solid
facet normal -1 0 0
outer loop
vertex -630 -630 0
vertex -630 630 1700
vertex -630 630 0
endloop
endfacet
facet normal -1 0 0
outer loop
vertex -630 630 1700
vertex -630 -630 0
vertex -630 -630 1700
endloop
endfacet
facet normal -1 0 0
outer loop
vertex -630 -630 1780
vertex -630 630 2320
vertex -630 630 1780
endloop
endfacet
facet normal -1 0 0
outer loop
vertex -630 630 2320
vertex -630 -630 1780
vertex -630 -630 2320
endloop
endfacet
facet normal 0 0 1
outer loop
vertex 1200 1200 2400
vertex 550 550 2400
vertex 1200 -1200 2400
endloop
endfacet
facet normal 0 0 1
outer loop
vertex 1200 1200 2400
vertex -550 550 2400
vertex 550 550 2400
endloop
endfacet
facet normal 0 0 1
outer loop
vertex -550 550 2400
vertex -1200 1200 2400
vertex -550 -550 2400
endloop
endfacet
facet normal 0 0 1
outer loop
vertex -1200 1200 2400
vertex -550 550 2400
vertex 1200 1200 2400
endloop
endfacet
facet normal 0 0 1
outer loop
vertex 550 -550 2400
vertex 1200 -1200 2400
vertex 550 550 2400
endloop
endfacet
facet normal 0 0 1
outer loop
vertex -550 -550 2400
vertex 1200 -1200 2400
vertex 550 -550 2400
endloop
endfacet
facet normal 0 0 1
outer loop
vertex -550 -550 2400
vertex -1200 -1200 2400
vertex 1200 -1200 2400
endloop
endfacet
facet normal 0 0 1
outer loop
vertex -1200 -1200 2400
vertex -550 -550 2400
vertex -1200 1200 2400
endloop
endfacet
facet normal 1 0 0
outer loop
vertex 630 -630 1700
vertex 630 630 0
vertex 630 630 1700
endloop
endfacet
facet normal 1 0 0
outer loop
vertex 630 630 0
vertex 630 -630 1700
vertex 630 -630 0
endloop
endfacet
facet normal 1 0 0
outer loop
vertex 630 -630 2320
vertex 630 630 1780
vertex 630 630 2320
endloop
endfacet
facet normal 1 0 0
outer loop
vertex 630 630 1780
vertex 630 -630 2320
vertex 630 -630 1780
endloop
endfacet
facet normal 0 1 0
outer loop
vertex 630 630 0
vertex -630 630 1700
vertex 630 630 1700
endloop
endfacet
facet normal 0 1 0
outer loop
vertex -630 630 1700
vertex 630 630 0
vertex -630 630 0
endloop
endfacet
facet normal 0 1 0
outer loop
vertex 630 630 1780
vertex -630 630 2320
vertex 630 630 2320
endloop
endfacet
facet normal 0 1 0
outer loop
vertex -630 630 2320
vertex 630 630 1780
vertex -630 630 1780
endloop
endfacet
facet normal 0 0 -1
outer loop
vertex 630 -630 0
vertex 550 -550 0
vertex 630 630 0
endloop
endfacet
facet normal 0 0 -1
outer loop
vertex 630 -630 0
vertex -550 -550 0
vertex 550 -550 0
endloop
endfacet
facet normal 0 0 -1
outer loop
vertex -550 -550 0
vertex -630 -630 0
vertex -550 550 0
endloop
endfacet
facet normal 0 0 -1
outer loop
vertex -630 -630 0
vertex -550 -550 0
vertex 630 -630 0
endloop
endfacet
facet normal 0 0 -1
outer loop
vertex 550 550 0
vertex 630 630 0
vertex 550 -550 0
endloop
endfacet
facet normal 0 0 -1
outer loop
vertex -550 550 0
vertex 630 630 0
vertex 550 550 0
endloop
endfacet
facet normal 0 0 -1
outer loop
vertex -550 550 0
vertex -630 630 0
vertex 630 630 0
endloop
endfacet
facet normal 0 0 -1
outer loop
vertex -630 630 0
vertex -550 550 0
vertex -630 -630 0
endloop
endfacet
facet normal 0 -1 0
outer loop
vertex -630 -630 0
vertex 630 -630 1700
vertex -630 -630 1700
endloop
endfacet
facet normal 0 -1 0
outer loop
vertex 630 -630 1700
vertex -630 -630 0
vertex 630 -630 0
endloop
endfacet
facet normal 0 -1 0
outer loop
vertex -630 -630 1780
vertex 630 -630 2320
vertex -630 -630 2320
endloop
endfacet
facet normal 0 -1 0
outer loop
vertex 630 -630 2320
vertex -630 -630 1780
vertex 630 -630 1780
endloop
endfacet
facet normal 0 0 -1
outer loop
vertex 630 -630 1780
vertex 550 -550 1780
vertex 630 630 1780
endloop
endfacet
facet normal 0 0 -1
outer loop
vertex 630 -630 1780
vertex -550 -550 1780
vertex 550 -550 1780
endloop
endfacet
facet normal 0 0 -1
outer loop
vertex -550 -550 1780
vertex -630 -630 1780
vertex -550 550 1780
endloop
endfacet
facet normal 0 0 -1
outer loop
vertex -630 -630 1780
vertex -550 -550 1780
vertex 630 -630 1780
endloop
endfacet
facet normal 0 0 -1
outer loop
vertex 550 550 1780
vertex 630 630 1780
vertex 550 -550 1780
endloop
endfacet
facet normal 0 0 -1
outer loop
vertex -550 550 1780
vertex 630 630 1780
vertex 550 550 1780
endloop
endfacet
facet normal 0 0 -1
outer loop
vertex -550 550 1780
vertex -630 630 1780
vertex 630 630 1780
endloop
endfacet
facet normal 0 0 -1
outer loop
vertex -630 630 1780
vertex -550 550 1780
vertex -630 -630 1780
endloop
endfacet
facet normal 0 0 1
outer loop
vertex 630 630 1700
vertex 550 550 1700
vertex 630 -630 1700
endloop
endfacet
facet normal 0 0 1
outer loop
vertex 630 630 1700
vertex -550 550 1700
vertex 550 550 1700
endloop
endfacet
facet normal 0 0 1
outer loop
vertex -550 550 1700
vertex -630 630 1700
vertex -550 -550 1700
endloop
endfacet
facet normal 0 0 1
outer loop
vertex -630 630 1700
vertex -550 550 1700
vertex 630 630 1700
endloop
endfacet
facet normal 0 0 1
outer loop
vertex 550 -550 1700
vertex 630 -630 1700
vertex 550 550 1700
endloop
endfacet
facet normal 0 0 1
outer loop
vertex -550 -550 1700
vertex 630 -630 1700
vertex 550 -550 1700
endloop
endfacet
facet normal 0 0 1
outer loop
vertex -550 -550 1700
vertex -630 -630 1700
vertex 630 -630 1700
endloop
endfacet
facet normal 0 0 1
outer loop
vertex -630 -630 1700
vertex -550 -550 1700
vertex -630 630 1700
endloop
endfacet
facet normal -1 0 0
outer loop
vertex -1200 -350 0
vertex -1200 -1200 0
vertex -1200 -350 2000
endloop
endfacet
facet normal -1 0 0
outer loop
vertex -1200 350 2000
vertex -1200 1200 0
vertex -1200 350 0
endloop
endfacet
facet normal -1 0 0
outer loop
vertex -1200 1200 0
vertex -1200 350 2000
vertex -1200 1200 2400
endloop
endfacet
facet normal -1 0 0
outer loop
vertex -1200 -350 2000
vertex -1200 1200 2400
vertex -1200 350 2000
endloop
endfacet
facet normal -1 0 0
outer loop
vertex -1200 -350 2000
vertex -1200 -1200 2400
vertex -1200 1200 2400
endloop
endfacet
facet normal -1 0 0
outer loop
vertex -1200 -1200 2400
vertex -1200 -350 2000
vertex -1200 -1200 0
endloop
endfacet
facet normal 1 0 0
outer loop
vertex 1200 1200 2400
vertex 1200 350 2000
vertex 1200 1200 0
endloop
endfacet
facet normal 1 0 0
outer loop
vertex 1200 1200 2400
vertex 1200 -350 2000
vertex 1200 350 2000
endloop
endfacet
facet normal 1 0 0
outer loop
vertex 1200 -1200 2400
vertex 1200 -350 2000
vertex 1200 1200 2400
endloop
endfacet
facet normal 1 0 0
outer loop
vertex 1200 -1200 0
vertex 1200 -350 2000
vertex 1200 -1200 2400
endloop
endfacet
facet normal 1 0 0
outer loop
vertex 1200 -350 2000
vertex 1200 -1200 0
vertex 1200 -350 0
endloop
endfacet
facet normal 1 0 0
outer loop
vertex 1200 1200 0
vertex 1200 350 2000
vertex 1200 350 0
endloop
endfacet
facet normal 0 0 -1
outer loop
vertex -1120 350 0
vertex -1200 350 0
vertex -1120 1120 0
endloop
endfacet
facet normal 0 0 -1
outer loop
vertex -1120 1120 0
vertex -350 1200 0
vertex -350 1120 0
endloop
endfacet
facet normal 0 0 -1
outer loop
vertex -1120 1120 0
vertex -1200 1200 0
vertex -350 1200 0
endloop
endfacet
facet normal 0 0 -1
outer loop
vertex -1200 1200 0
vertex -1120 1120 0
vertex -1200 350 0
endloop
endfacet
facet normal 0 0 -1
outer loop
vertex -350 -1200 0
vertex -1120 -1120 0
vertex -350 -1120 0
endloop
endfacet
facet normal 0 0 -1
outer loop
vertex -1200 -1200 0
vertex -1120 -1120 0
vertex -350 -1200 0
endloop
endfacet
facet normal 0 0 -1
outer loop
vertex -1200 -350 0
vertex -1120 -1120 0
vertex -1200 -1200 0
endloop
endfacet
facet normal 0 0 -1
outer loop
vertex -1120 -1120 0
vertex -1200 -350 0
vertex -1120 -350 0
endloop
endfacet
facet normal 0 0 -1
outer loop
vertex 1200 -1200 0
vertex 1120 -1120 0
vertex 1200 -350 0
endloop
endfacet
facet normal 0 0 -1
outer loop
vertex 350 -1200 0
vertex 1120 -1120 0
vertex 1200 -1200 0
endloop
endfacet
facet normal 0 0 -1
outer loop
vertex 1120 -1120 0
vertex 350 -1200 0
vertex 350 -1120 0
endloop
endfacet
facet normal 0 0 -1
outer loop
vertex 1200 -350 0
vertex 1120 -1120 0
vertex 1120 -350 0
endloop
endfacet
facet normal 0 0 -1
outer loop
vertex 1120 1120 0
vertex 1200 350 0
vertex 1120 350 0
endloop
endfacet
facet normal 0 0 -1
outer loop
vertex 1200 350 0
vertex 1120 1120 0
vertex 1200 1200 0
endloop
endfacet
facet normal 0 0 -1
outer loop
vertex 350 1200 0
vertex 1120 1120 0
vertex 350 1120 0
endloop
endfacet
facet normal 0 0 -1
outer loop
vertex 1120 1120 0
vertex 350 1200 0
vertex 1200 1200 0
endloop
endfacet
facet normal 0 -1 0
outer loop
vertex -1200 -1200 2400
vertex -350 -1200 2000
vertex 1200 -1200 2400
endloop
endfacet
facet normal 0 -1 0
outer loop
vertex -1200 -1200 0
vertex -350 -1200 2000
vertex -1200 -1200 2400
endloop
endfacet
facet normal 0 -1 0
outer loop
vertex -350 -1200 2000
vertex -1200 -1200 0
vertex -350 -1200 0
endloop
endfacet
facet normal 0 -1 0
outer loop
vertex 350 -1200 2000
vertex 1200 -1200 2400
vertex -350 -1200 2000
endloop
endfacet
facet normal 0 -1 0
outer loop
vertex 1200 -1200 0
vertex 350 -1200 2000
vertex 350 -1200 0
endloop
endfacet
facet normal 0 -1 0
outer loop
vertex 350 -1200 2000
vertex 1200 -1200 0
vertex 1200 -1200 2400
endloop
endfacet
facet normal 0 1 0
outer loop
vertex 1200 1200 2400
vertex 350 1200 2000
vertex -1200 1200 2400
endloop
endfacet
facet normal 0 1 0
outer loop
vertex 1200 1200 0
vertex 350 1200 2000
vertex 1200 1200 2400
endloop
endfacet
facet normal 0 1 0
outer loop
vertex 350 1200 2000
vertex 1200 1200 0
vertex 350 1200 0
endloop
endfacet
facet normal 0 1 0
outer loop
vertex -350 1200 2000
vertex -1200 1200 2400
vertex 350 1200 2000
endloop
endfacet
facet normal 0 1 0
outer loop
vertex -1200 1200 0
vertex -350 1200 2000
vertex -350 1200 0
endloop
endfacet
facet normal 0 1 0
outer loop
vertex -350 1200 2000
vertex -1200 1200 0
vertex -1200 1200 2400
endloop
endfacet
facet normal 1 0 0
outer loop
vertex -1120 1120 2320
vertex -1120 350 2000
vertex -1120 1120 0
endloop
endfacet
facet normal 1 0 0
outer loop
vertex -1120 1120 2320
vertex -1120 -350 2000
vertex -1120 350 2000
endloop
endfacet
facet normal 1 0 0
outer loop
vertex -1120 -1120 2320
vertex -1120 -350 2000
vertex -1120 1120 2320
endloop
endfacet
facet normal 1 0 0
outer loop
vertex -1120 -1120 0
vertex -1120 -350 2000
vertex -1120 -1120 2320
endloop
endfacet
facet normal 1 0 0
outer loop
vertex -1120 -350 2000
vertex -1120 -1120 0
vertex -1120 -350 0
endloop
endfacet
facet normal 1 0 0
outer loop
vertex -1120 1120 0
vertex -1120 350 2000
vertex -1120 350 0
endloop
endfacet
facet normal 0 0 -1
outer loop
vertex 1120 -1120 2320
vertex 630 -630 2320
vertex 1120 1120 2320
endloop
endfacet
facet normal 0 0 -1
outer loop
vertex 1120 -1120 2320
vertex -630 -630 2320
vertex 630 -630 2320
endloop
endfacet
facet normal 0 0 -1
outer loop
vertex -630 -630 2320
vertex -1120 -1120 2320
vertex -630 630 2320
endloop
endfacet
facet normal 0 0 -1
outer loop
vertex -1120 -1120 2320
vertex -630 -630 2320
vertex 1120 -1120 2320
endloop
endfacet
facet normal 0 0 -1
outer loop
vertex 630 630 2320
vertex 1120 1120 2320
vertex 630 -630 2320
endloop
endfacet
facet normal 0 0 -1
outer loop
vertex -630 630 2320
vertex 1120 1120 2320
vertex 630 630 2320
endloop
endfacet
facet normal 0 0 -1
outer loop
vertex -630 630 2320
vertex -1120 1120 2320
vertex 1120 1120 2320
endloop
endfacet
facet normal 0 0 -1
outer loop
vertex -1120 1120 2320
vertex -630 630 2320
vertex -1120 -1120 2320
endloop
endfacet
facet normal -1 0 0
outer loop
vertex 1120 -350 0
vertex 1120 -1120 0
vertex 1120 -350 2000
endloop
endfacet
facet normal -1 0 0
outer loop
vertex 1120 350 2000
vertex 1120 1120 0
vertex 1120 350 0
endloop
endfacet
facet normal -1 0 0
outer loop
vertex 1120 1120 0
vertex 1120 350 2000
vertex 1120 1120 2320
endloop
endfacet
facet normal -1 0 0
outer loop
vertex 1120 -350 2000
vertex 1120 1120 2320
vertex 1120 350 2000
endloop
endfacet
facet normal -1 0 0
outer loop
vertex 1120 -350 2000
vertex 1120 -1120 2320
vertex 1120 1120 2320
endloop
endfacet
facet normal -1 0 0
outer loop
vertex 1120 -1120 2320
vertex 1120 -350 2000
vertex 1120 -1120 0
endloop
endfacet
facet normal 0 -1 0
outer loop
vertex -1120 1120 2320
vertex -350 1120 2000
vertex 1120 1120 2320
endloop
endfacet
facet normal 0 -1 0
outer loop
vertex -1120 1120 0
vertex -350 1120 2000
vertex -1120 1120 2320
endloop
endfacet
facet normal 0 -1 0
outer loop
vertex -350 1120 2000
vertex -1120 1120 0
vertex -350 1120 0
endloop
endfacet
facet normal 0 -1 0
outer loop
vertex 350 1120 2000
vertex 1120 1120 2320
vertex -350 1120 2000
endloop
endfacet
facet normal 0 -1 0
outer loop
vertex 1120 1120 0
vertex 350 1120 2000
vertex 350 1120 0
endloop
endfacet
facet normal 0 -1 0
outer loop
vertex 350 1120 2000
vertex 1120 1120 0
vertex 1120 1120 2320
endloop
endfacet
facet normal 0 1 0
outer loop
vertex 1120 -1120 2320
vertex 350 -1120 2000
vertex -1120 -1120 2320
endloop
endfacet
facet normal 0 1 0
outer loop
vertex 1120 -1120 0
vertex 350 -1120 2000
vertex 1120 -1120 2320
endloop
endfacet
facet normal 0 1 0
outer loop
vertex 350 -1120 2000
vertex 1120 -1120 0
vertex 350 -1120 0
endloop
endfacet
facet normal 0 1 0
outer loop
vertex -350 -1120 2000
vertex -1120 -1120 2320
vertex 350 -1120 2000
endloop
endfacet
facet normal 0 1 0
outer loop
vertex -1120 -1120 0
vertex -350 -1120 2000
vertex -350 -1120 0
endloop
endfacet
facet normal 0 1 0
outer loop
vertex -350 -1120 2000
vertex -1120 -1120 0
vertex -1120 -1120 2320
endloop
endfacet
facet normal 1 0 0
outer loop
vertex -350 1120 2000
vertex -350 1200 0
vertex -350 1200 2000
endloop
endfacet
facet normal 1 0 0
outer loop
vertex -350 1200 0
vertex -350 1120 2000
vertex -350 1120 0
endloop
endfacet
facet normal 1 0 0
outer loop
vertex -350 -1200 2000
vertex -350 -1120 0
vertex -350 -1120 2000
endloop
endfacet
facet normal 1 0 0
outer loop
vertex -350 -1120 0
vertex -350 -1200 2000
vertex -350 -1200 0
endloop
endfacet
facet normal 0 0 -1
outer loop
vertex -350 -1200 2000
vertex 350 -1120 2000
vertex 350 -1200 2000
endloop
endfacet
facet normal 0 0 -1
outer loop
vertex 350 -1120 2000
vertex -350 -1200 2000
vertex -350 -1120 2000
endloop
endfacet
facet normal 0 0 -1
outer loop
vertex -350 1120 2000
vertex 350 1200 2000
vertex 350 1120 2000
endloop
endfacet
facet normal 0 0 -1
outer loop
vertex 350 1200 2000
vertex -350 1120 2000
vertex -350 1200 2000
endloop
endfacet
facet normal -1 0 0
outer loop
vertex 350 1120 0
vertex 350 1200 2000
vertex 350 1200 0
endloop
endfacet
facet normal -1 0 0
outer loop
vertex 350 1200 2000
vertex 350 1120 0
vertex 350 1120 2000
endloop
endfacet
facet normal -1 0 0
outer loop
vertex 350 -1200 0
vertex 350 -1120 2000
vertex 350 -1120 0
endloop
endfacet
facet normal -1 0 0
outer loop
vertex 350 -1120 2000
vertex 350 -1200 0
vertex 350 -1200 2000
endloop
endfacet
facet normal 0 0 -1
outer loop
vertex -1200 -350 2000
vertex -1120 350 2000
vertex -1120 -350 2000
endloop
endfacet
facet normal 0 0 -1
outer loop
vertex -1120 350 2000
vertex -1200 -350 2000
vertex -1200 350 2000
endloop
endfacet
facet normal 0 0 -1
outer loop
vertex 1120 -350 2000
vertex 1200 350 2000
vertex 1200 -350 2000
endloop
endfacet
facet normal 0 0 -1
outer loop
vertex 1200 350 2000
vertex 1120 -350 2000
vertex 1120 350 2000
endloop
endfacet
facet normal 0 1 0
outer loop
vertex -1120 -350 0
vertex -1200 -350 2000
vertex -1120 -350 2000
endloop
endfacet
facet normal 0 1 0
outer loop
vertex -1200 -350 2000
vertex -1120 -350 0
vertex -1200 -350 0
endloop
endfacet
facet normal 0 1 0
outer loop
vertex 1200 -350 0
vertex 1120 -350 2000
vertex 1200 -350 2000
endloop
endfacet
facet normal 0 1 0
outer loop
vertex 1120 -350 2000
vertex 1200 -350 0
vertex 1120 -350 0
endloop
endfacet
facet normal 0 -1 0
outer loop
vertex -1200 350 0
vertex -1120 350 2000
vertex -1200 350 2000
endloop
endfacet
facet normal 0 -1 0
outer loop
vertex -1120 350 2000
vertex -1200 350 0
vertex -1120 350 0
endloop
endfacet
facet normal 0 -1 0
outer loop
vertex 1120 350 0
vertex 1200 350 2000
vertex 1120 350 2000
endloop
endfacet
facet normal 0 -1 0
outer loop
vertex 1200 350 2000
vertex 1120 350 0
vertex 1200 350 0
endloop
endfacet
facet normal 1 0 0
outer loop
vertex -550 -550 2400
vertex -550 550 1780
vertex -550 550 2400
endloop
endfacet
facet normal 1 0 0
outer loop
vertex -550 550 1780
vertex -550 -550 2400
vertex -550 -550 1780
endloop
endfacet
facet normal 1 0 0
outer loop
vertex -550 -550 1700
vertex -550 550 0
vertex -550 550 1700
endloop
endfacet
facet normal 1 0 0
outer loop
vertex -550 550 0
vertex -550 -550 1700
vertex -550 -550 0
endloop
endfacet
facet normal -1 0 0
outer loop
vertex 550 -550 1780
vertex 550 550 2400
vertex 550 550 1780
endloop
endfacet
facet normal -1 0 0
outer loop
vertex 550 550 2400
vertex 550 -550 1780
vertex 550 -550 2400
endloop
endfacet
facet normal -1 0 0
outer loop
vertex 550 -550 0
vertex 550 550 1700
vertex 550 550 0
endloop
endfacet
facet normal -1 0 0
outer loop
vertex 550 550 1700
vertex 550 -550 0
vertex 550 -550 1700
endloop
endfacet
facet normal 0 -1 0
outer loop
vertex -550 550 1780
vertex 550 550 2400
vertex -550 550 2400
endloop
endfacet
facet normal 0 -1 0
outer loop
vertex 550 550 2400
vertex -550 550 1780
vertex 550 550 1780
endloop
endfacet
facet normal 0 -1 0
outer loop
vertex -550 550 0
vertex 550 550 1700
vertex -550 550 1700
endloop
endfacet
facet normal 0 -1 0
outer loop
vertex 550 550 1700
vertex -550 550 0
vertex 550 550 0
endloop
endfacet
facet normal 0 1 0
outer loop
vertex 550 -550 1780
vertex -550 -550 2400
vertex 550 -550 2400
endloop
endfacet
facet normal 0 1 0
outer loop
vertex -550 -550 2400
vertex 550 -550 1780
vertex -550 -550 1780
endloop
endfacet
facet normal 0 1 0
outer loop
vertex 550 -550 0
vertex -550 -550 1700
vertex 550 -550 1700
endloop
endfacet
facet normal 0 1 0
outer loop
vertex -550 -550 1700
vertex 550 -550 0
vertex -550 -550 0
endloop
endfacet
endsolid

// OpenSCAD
width=2400;
court_width=1100;
height=2400;
door_width=700;
door_height=2000;
loophole_height=80;
loophole_elevation=1700;
wall_thickness=80;


module kubus_ii(
    w=width,
    cw=court_width,
    h=height,
    dw=door_width,
    dh=door_height,
    lh=loophole_height,
    le=loophole_elevation,
    wt=wall_thickness,
){
    translate([-w/2,-w/2,0]) difference(){
        union(){
            difference(){
                translate([(w-cw)/2-wt,(w-cw)/2-wt,0]) cube([cw+2*wt,cw+2*wt,h]);
                translate([wt/-2,wt/-2,le]) cube([w+wt,w+wt,lh]);

            }
            difference() {
                cube([w,w,h]);
                translate([wt,wt,-wt]) cube([w-2*wt,w-2*wt,h]);
                translate([(w-dw)/2,-wt,-wt]) cube([dw,w+2*wt,dh+wt]);
                translate([-wt,(w-dw)/2,-wt]) cube([w+2*wt,dw,dh+wt]);
            }
        }
        translate([(w-cw)/2,(w-cw)/2,wt/-2]) cube([cw,cw,h+wt]);
    }
};

kubus_ii();
